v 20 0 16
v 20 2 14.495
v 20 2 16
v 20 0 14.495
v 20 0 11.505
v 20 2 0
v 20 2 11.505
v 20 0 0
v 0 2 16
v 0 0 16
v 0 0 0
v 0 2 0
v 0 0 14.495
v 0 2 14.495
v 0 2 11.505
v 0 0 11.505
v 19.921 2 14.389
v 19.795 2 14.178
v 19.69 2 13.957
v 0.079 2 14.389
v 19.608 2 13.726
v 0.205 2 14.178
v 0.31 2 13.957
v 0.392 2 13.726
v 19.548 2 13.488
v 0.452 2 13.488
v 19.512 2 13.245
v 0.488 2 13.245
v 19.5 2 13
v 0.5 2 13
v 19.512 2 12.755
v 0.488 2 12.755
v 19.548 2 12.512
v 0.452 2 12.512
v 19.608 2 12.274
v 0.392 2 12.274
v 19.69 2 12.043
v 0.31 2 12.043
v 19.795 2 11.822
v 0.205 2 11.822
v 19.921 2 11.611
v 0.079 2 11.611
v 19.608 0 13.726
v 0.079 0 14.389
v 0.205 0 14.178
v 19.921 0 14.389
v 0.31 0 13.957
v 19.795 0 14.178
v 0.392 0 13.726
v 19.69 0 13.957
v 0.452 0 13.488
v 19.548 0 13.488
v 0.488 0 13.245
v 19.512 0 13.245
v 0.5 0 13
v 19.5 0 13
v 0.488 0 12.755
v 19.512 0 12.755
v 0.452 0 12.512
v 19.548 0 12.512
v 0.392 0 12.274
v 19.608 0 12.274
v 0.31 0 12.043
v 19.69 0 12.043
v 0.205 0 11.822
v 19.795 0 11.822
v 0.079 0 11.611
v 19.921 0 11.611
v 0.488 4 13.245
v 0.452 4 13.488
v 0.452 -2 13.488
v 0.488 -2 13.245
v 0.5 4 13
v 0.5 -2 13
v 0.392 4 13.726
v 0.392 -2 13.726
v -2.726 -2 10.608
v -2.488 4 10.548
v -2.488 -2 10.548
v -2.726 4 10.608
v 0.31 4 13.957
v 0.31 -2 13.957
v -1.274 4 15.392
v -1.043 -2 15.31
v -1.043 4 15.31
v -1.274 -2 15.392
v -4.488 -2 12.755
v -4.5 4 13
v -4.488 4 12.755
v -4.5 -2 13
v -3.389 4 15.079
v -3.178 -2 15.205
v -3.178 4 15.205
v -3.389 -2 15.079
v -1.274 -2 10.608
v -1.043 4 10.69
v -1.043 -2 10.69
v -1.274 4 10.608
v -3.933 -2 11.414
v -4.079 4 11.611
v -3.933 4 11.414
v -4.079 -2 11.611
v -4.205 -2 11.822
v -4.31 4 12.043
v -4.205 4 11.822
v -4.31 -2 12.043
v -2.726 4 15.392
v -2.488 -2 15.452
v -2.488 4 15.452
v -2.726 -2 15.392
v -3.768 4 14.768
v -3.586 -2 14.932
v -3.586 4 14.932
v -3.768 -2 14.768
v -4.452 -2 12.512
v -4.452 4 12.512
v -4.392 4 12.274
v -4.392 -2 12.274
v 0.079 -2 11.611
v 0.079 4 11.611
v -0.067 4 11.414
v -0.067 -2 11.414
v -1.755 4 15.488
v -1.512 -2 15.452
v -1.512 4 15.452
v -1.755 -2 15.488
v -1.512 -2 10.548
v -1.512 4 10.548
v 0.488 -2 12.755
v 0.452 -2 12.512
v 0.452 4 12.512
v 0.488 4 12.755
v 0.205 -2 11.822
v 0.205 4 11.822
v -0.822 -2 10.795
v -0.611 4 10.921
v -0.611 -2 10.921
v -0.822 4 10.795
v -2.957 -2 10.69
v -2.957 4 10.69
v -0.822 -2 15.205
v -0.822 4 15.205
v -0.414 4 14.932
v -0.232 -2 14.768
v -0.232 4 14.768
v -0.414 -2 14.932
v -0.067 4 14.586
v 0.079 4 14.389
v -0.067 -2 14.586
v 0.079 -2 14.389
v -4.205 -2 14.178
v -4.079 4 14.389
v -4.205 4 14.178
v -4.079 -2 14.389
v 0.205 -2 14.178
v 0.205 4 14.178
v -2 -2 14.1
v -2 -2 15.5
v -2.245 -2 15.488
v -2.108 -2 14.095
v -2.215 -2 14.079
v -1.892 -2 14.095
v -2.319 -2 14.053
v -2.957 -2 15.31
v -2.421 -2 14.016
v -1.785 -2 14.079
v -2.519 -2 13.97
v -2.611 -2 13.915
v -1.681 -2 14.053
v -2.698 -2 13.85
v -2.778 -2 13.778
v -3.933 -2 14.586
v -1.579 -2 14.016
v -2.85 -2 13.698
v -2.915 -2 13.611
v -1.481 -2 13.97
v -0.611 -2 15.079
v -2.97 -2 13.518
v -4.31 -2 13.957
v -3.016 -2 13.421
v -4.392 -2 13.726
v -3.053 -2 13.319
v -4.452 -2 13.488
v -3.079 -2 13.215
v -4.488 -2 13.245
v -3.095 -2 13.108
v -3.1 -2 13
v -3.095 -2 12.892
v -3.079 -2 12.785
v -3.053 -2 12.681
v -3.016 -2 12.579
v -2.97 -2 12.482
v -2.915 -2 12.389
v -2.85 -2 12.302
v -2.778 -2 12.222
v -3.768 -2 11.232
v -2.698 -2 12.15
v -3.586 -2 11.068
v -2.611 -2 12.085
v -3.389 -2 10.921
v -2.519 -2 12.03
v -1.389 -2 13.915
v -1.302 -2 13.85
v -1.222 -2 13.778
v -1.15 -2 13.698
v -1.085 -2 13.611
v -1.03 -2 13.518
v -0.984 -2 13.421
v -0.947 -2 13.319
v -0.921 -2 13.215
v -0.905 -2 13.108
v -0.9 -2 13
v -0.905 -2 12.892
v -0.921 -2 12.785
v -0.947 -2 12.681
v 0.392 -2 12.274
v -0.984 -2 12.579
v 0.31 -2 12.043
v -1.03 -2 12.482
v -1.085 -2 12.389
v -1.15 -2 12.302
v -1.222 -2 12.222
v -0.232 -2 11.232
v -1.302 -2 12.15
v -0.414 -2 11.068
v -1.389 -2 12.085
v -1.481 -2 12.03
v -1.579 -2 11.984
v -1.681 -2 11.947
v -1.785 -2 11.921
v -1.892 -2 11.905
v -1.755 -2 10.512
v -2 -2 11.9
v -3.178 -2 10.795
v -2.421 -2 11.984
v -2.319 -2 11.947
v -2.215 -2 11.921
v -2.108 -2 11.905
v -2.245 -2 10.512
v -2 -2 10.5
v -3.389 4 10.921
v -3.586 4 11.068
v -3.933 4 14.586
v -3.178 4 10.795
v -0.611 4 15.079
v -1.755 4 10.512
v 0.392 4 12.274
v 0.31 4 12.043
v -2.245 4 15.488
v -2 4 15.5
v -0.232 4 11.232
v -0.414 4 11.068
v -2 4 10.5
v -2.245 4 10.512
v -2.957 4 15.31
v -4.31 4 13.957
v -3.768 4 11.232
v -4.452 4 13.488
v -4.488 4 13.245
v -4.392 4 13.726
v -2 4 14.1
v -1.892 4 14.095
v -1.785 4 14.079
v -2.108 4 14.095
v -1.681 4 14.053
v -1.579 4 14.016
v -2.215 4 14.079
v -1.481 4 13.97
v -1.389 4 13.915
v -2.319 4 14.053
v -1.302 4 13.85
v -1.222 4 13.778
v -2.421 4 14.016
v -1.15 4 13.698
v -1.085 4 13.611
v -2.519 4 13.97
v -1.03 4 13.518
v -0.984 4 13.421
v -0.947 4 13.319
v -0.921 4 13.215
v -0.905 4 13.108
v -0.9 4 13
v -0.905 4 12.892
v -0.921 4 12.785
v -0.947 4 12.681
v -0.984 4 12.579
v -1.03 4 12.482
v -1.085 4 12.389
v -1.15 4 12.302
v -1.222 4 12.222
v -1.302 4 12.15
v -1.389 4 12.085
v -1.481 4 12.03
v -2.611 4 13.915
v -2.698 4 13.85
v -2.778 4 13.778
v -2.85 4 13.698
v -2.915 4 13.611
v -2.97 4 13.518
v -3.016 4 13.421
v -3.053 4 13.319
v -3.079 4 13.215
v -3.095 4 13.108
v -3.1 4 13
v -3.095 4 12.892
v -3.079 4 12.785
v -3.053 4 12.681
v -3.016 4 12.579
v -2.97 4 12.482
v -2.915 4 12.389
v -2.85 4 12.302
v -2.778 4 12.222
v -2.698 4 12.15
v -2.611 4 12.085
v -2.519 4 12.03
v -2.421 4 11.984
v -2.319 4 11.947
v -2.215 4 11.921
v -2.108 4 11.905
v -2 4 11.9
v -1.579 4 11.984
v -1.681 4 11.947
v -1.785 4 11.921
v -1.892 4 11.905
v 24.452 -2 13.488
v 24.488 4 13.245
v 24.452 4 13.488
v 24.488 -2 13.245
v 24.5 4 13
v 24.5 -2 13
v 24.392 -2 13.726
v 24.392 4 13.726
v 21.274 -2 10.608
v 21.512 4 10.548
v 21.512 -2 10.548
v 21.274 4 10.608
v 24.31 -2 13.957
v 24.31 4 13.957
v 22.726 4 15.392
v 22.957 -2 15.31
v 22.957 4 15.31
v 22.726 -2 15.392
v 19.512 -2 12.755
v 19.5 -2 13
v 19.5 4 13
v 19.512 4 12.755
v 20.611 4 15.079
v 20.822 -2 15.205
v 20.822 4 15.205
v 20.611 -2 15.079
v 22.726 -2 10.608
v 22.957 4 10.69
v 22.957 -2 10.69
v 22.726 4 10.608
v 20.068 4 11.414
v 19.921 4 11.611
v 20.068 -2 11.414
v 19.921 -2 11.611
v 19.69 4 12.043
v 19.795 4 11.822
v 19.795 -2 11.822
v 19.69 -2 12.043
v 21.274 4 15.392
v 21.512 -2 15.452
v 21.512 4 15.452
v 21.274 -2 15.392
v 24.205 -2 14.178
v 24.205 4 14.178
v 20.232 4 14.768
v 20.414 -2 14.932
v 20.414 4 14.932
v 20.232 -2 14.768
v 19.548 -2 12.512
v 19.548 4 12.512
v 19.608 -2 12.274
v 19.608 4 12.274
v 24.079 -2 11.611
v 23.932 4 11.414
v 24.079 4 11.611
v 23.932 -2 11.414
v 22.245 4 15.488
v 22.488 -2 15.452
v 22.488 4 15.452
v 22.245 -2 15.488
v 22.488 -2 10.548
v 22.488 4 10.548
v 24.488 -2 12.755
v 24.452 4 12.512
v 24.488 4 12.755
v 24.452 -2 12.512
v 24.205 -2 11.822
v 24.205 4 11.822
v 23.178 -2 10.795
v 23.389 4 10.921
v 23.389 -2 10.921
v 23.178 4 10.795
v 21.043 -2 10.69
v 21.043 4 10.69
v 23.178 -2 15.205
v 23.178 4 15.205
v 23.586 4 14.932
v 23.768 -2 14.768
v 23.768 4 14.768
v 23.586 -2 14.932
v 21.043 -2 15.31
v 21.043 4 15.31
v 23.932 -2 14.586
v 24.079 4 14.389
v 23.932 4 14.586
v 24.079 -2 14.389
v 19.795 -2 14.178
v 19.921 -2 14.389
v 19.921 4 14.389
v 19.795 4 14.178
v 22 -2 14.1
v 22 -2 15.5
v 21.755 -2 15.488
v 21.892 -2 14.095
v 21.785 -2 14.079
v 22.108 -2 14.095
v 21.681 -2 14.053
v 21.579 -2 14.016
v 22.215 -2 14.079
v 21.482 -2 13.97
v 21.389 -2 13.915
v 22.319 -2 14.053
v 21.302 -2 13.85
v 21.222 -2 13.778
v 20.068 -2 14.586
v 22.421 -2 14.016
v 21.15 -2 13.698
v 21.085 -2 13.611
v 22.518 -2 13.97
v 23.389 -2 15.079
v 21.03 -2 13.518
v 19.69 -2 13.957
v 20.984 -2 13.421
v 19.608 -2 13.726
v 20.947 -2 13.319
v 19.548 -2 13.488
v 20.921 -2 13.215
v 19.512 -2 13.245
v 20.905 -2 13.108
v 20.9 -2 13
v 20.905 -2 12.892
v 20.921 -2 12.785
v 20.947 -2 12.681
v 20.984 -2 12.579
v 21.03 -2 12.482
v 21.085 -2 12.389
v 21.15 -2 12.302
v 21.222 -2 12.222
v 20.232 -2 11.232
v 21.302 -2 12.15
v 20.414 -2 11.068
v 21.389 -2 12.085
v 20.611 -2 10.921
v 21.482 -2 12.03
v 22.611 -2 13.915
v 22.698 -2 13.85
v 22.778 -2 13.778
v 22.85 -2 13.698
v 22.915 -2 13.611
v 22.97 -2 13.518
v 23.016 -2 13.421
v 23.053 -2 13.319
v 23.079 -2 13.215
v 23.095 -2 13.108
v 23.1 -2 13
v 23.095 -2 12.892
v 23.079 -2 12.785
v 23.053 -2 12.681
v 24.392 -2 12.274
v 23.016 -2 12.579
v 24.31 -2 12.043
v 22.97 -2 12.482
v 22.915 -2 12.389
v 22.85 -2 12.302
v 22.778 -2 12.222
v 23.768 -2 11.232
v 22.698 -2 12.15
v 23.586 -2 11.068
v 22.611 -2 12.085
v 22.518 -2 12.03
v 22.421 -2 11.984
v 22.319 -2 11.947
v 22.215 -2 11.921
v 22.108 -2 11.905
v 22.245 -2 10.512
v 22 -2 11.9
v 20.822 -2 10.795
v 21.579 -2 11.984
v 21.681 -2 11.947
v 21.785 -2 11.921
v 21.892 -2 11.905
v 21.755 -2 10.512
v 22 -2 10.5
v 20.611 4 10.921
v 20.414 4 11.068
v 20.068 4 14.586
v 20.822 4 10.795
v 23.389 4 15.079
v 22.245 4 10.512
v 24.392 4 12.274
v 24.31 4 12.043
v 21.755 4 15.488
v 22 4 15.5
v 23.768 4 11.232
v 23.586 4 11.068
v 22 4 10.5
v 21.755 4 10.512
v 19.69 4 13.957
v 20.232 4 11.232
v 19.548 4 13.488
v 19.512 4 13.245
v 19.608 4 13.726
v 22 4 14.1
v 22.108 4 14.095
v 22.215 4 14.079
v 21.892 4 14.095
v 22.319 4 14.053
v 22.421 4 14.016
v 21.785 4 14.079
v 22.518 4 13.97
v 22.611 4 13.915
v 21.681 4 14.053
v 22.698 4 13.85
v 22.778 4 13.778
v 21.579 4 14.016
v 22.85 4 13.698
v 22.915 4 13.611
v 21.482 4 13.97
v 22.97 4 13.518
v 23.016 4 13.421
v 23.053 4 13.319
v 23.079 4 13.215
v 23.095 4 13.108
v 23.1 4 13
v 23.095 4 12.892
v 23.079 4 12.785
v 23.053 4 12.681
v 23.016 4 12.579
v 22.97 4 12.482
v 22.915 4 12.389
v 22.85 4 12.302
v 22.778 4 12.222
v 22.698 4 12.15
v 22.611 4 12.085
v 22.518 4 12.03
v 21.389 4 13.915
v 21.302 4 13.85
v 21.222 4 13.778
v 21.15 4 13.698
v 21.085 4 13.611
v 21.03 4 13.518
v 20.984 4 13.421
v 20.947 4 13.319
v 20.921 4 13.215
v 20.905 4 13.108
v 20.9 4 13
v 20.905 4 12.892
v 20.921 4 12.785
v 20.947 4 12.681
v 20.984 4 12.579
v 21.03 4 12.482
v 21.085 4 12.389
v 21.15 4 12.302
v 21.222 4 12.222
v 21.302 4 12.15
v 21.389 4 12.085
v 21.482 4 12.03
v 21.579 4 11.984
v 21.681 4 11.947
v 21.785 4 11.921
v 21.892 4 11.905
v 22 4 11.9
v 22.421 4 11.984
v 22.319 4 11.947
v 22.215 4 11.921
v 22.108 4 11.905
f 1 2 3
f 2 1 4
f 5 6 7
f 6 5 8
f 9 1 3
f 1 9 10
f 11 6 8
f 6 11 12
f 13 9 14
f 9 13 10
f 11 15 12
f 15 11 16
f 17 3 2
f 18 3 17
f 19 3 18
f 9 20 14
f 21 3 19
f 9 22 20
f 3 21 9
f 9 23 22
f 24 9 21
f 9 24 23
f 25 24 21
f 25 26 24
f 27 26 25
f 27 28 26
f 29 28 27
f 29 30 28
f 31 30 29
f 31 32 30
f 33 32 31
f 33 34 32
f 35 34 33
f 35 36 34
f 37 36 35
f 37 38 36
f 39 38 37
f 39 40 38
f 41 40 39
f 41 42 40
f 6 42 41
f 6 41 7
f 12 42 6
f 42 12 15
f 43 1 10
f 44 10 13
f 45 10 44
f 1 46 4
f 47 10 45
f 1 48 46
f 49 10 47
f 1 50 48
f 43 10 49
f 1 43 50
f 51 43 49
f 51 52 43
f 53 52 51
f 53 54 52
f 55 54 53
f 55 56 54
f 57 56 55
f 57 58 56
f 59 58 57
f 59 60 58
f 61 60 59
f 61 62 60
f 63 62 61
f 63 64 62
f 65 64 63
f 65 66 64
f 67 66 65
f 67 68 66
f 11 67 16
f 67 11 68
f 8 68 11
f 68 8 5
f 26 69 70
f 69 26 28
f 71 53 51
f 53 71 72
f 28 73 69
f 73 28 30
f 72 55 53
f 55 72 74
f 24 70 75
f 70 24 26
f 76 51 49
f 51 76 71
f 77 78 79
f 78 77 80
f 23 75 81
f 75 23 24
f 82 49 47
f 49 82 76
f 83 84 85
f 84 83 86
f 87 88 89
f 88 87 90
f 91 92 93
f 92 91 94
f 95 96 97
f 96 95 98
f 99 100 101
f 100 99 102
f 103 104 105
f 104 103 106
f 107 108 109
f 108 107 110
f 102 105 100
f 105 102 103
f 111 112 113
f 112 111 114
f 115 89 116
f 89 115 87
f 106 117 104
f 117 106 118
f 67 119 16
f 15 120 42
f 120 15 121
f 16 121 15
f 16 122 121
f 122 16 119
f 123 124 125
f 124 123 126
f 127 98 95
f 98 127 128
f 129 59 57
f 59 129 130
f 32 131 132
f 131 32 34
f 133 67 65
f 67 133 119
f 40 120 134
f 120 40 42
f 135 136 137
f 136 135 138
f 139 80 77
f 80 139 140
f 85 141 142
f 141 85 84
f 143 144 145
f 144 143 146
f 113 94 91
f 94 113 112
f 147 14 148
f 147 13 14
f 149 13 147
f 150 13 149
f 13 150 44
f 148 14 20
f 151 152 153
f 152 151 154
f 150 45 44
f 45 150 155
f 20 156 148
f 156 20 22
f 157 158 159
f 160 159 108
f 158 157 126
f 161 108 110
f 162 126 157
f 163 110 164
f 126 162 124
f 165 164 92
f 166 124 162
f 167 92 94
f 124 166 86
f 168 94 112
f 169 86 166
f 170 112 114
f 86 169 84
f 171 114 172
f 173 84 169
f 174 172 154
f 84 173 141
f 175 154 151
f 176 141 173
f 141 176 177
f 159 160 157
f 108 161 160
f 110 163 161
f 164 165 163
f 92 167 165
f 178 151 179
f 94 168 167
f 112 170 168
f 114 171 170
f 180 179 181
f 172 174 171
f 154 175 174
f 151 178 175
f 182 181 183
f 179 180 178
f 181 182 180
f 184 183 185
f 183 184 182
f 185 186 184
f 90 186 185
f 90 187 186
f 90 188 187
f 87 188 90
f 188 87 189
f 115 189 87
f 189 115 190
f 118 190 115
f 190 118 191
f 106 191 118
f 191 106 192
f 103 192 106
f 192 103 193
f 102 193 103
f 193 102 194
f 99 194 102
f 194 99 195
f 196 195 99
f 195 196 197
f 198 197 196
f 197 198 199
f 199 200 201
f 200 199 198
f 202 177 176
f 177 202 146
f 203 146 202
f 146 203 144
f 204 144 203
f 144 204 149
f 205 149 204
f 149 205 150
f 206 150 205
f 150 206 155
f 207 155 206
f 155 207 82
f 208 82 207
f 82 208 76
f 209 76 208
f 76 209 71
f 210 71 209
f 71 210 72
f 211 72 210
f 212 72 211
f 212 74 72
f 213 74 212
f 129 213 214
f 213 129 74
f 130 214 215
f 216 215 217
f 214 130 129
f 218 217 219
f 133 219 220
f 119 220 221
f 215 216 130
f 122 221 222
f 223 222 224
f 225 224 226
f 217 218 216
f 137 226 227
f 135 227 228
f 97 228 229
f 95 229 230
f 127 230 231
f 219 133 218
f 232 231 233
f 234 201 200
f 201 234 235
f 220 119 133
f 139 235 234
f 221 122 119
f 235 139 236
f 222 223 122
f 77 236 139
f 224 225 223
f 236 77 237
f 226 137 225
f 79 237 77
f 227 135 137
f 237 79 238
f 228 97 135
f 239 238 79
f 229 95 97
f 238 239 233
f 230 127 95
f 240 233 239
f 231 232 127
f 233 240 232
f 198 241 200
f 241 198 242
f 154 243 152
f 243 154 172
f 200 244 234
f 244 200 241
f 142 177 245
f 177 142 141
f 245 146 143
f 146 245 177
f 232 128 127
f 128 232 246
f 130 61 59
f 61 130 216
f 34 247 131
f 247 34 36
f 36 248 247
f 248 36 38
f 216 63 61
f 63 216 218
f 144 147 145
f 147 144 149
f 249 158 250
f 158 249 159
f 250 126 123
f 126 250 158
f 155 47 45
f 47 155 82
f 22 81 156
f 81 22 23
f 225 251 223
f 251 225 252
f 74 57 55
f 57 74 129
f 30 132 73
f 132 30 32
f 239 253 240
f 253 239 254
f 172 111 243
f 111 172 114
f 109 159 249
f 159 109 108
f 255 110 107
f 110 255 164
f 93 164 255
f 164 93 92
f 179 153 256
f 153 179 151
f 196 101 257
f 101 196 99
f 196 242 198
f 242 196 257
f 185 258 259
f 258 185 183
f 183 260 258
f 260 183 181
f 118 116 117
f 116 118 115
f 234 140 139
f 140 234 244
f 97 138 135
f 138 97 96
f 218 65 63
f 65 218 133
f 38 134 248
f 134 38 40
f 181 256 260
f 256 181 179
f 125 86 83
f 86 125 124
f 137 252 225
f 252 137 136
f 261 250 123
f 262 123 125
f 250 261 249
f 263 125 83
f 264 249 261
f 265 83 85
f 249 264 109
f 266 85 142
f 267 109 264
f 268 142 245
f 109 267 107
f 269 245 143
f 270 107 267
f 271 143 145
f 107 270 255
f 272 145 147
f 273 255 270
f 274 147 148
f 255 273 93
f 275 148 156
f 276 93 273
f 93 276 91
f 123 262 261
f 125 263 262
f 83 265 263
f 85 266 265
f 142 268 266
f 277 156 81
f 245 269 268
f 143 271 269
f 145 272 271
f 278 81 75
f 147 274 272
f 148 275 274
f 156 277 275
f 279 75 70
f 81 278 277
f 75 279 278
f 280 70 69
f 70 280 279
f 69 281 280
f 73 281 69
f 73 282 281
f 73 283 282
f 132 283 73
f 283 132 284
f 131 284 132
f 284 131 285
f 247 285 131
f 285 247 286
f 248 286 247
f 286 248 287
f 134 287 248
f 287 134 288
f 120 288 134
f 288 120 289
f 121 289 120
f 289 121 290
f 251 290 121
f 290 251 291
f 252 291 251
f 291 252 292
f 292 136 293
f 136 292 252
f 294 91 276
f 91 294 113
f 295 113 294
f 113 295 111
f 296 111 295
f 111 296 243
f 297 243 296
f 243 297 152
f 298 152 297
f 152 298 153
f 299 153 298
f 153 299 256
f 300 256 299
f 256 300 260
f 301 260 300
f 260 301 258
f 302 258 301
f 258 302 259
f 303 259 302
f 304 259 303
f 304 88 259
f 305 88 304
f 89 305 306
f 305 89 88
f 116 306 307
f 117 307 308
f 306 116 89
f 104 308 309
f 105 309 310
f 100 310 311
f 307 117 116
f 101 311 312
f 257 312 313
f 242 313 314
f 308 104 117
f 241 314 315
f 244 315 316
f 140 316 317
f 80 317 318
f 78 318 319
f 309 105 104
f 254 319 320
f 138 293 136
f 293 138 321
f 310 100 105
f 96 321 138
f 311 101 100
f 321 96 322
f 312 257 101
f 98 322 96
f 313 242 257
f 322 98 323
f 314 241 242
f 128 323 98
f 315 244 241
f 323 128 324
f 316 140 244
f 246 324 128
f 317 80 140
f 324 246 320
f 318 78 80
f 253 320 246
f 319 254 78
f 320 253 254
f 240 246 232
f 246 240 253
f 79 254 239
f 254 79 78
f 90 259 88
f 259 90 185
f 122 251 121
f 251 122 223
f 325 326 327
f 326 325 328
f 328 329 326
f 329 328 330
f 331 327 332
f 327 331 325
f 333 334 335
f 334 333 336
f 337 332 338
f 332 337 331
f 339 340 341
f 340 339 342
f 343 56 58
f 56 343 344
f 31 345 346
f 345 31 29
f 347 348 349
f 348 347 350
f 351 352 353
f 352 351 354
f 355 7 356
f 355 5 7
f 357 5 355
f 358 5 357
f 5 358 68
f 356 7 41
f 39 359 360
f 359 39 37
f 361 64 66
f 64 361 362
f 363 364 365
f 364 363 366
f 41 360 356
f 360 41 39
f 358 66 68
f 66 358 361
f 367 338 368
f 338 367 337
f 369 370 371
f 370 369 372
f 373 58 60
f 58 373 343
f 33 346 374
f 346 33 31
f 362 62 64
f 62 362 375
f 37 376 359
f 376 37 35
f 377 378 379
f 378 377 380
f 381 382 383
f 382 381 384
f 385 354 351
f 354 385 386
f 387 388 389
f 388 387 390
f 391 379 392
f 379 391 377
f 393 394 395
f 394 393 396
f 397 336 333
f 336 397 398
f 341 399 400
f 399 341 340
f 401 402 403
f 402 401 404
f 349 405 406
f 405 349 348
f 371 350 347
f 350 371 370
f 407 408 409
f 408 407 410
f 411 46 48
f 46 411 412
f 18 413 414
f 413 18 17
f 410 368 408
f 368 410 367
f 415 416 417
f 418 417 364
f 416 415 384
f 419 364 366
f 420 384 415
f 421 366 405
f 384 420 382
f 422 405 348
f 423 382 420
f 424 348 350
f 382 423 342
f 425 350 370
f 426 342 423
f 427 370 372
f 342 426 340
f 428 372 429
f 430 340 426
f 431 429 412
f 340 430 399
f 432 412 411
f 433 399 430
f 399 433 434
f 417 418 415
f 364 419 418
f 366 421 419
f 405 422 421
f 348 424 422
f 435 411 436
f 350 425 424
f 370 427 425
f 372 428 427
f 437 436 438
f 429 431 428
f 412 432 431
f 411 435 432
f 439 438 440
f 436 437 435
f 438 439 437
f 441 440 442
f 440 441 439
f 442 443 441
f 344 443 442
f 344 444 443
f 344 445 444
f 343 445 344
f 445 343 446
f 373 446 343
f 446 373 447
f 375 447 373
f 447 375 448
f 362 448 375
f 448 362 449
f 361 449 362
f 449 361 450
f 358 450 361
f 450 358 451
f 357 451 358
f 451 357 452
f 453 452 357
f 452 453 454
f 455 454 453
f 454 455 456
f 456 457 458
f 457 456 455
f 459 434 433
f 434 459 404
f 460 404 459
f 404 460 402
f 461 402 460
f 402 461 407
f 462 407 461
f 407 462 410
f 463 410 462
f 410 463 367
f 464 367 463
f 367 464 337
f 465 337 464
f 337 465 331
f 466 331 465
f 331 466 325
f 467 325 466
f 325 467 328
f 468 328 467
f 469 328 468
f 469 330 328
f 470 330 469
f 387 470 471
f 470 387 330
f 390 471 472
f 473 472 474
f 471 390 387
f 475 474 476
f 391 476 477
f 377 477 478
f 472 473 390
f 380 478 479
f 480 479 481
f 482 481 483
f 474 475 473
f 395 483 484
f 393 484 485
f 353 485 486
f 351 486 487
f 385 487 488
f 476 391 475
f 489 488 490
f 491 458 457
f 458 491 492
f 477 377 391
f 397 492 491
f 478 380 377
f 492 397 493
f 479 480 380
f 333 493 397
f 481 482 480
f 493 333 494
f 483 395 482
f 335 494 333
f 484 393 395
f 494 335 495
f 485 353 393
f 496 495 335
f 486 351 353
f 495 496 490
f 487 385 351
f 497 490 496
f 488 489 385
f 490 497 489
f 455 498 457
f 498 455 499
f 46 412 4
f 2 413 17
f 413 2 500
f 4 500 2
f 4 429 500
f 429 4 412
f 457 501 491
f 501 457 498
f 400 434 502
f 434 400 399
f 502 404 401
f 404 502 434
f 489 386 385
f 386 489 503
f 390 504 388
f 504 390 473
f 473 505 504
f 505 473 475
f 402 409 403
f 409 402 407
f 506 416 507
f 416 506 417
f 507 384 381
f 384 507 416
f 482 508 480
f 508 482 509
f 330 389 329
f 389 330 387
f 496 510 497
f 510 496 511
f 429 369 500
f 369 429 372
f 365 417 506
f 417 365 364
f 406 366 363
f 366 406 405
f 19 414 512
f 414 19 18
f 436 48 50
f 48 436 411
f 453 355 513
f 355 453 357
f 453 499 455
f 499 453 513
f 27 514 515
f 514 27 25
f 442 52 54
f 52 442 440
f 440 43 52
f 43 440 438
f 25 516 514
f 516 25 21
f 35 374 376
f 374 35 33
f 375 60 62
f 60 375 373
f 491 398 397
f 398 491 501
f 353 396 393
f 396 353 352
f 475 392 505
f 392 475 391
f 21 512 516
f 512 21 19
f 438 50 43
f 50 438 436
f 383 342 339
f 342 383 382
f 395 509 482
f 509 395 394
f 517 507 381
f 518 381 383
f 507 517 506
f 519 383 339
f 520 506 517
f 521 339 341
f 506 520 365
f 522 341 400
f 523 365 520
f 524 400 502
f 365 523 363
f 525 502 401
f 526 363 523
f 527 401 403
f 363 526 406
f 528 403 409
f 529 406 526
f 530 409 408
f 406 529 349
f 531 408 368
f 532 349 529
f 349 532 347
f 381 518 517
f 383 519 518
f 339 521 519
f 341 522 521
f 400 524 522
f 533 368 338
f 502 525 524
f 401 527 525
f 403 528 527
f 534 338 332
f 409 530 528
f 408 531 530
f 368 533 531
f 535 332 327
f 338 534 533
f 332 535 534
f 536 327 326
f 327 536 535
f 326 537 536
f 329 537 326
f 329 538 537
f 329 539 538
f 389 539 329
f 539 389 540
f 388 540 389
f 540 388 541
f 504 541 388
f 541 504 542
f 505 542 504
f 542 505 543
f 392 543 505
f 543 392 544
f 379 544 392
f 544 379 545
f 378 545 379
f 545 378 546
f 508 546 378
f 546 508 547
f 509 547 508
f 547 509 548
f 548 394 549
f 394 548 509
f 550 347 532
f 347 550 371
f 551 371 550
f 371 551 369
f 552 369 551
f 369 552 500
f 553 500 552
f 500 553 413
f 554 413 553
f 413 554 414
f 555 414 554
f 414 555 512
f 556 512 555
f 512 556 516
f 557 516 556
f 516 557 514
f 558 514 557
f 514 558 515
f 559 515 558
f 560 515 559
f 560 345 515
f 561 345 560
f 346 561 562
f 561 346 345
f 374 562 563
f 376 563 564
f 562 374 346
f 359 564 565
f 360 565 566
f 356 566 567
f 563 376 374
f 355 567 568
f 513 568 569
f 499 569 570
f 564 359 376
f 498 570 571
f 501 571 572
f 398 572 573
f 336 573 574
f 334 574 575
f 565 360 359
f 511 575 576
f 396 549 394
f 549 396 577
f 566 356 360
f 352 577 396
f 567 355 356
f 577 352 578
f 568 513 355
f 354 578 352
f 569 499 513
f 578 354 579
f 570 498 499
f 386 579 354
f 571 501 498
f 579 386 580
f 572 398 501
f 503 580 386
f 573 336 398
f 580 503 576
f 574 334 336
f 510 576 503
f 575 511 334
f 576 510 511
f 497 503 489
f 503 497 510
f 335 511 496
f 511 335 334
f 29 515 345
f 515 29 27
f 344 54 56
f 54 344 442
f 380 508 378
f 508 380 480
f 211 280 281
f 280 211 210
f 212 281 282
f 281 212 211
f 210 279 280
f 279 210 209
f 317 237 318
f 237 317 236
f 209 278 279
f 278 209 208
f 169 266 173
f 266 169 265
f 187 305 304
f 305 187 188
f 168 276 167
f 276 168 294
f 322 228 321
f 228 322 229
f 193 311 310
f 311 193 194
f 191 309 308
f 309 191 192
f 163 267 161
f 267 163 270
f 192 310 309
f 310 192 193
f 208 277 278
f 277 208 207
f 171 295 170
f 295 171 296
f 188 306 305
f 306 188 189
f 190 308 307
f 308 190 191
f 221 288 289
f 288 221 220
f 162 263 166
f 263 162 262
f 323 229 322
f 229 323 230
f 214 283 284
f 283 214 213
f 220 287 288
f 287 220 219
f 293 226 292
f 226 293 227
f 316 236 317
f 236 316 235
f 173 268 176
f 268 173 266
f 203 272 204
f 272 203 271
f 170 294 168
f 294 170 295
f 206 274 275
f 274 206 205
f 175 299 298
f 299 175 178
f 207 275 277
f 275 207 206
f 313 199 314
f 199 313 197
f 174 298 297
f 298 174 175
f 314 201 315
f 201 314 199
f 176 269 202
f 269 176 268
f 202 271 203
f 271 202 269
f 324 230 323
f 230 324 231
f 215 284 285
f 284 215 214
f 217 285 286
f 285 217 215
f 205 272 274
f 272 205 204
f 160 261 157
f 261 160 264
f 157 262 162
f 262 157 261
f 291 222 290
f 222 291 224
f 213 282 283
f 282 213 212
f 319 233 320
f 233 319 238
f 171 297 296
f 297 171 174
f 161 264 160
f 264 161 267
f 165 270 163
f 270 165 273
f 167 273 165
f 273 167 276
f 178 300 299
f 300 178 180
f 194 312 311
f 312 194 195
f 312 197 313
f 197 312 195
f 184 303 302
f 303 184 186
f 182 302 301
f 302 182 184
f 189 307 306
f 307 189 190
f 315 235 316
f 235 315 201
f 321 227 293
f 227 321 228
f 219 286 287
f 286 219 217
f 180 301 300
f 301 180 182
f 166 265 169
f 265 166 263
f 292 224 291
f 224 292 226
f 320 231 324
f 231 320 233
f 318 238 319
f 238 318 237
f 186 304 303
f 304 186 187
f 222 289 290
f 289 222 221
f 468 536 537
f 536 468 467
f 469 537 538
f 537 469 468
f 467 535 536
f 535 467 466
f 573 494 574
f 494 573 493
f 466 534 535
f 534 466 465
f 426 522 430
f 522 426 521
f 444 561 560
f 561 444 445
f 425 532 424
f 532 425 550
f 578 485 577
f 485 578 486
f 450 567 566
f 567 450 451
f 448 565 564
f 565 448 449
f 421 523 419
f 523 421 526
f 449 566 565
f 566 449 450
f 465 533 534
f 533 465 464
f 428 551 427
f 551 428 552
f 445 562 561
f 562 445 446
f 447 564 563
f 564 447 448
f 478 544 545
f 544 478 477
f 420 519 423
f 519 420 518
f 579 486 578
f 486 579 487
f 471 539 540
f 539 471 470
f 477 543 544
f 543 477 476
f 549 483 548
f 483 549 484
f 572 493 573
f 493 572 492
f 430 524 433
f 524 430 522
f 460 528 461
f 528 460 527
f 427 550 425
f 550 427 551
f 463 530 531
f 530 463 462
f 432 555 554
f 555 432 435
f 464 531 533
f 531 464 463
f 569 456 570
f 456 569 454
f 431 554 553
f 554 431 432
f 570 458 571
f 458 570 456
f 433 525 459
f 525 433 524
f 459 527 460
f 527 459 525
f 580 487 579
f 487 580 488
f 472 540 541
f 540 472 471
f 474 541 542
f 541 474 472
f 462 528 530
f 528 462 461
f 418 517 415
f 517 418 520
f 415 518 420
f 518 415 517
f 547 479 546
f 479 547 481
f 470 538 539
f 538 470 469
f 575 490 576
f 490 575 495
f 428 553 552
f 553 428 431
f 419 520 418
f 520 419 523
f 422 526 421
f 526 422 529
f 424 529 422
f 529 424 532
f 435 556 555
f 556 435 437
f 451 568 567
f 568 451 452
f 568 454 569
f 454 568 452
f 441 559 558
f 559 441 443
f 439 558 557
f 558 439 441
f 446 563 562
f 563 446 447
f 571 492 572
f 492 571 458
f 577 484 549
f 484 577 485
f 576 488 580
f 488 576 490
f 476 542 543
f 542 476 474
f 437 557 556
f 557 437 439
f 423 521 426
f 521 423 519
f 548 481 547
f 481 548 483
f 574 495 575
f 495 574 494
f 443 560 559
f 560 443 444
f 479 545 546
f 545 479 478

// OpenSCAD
// Generated by SolidPython 1.1.3 on 2026-10-31 12:54:01
$fn = 64;
// 04_servo_gate


difference() {
	union() {
		cube(size = [20.0000000000, 2.0000000000, 16.0000000000]);
		translate(v = [-2, 1.0000000000, 13.0000000000]) {
			rotate(a = [90, 0, 0]) {
				cylinder(center = true, h = 6.0000000000, r = 2.5000000000);
			}
		}
		translate(v = [22.0000000000, 1.0000000000, 13.0000000000]) {
			rotate(a = [90, 0, 0]) {
				cylinder(center = true, h = 6.0000000000, r = 2.5000000000);
			}
		}
	}
	translate(v = [-2, 1.0000000000, 13.0000000000]) {
		rotate(a = [90, 0, 0]) {
			cylinder(center = true, h = 8.0000000000, r = 1.1000000000);
		}
	}
	translate(v = [22.0000000000, 1.0000000000, 13.0000000000]) {
		rotate(a = [90, 0, 0]) {
			cylinder(center = true, h = 8.0000000000, r = 1.1000000000);
		}
	}
}
/***********************************************
*********      SolidPython code:      **********
************************************************
 
#!/usr/bin/env python3
"""
Parametric 6-compartment automatic pill dispenser
Compatible with MDP Smart Pill Dispenser project assumptions
(6 slots, one preloaded item per slot, servo gate release)

Dimensions chosen for easy FDM printing (PLA/PETG), common SG90/MG90S servo,
and typical tablet sizes. All units in mm.

Exports STL files ready for slicing.
"""

from solid import *
from solid.utils import *
import os

# ===================== PARAMETERS (edit these) =====================
NUM_COMPARTMENTS = 6
TRAY_OUTER_DIA = 120.0
TRAY_HEIGHT = 28.0
WALL = 2.2
SHAFT_DIA = 8.0          # central shaft / coupler hole
HUB_DIA = 22.0
COMPARTMENT_DEPTH = 22.0 # radial depth of each pocket
BASE_DIA = 140.0
BASE_HEIGHT = 45.0
ELECTRONICS_BAY_W = 70.0
ELECTRONICS_BAY_D = 55.0
ELECTRONICS_BAY_H = 28.0
OUTLET_W = 18.0
OUTLET_H = 14.0
SERVO_MOUNT_W = 23.0     # typical SG90 body width
SERVO_MOUNT_H = 12.0
GATE_THICK = 2.0
GATE_W = 20.0
GATE_H = 16.0
LID_HEIGHT = 4.0
CLEARANCE = 0.4          # print clearance

OUTPUT_DIR = os.path.dirname(os.path.abspath(__file__))

# ===================== HELPER =====================
def cylinder_z(h, r=None, d=None, center=False):
    if d is not None:
        r = d / 2.0
    return cylinder(h=h, r=r, center=center)

# ===================== TRAY (carousel) =====================
def make_tray():
    outer_r = TRAY_OUTER_DIA / 2
    hub_r = HUB_DIA / 2
    shaft_r = SHAFT_DIA / 2 + CLEARANCE / 2
    angle_step = 360.0 / NUM_COMPARTMENTS
    floor_h = WALL

    # Solid outer cylinder
    tray = cylinder_z(TRAY_HEIGHT, r=outer_r)

    # Remove material above the floor to create the open compartments
    # Keep outer wall thickness = WALL
    void = translate([0, 0, floor_h])(
        cylinder_z(TRAY_HEIGHT - floor_h + 1, r=outer_r - WALL)
    )
    tray = difference()(tray, void)

    # Add radial divider walls (from hub to outer wall)
    for i in range(NUM_COMPARTMENTS):
        a = i * angle_step
        wall = rotate([0, 0, a])(
            translate([hub_r - 1, -WALL / 2, 0])(
                cube([outer_r - hub_r + 2, WALL, TRAY_HEIGHT])
            )
        )
        tray = union()(tray, wall)

    # Solid central hub
    hub = cylinder_z(TRAY_HEIGHT, r=hub_r)
    tray = union()(tray, hub)

    # Shaft hole through hub
    shaft = translate([0, 0, -1])(
        cylinder_z(TRAY_HEIGHT + 2, r=shaft_r)
    )
    tray = difference()(tray, shaft)

    # Small radial indexing holes (for optical/home sensor)
    for i in range(NUM_COMPARTMENTS):
        a = i * angle_step + angle_step / 2.0
        hole = rotate([0, 0, a])(
            translate([outer_r - 5, 0, TRAY_HEIGHT / 2])(
                rotate([0, 90, 0])(
                    cylinder_z(10, r=1.6, center=True)
                )
            )
        )
        tray = difference()(tray, hole)

    return tray

# ===================== BASE =====================
def make_base():
    outer_r = BASE_DIA / 2
    base = cylinder_z(BASE_HEIGHT, r=outer_r)

    # Hollow main cavity for tray + mechanism
    cavity_r = TRAY_OUTER_DIA / 2 + 3
    cavity = translate([0, 0, 8])(
        cylinder_z(BASE_HEIGHT, r=cavity_r)
    )
    base = difference()(base, cavity)

    # Electronics bay (side cutout / pocket)
    bay = translate([
        outer_r - ELECTRONICS_BAY_D/2 - 8,
        -ELECTRONICS_BAY_W/2,
        5
    ])(
        cube([ELECTRONICS_BAY_D + 10, ELECTRONICS_BAY_W, ELECTRONICS_BAY_H])
    )
    base = difference()(base, bay)

    # Outlet chute at front
    outlet = translate([
        cavity_r - 5,
        -OUTLET_W/2,
        8
    ])(
        cube([30, OUTLET_W, OUTLET_H])
    )
    base = difference()(base, outlet)

    # Motor mount platform (central raised area under tray)
    mount = cylinder_z(10, r=28)
    base = union()(base, mount)

    # Shaft clearance hole through mount
    shaft_hole = cylinder_z(15, r=SHAFT_DIA/2 + 1.5)
    base = difference()(base, shaft_hole)

    # Servo mount pocket (for gate actuator) - near outlet
    servo_pocket = translate([
        cavity_r - 15,
        OUTLET_W/2 + 5,
        10
    ])(
        cube([SERVO_MOUNT_W + 2, 12, SERVO_MOUNT_H + 2])
    )
    base = difference()(base, servo_pocket)

    # Mounting screw holes for electronics / lid (M3)
    for angle in [45, 135, 225, 315]:
        hole = rotate([0, 0, angle])(
            translate([outer_r - 12, 0, 0])(
                cylinder_z(BASE_HEIGHT + 2, r=1.7)
            )
        )
        base = difference()(base, hole)

    # Bottom feet
    for angle in [0, 90, 180, 270]:
        foot = rotate([0, 0, angle])(
            translate([outer_r - 18, 0, 0])(
                cylinder_z(3, r=8)
            )
        )
        base = union()(base, foot)

    return base

# ===================== LID =====================
def make_lid():
    outer_r = TRAY_OUTER_DIA / 2 + 1.5
    lid = cylinder_z(LID_HEIGHT, r=outer_r)
    # Lip that sits on tray
    lip = translate([0, 0, -2])(
        difference()(
            cylinder_z(3, r=outer_r),
            cylinder_z(4, r=outer_r - 3)
        )
    )
    lid = union()(lid, lip)
    # Central handle / fill hole (optional small opening)
    fill = cylinder_z(LID_HEIGHT + 2, r=12)
    lid = difference()(lid, fill)
    # Label area
    return lid

# ===================== GATE (servo flap) =====================
def make_gate():
    # Simple rectangular flap with hinge pin holes
    gate = cube([GATE_W, GATE_THICK, GATE_H])
    # Hinge bosses
    boss1 = translate([-2, GATE_THICK/2, GATE_H - 3])(
        rotate([90, 0, 0])(cylinder_z(GATE_THICK + 4, r=2.5, center=True))
    )
    boss2 = translate([GATE_W + 2, GATE_THICK/2, GATE_H - 3])(
        rotate([90, 0, 0])(cylinder_z(GATE_THICK + 4, r=2.5, center=True))
    )
    gate = union()(gate, boss1, boss2)
    # Pin holes
    pin1 = translate([-2, GATE_THICK/2, GATE_H - 3])(
        rotate([90, 0, 0])(cylinder_z(GATE_THICK + 6, r=1.1, center=True))
    )
    pin2 = translate([GATE_W + 2, GATE_THICK/2, GATE_H - 3])(
        rotate([90, 0, 0])(cylinder_z(GATE_THICK + 6, r=1.1, center=True))
    )
    gate = difference()(gate, pin1, pin2)
    return gate

# ===================== GENERATE =====================
def export(obj, name):
    path = os.path.join(OUTPUT_DIR, f"{name}.scad")
    scad_render_to_file(obj, path, file_header=f"$fn = 64;\n// {name}\n")
    print(f"Wrote {path}")
    # Also try to produce STL via openscad if available, else leave .scad
    return path

if __name__ == "__main__":
    print("Generating parametric pill dispenser parts...")
    tray = make_tray()
    base = make_base()
    lid = make_lid()
    gate = make_gate()

    export(tray, "01_tray_carousel_6slot")
    export(base, "02_base_enclosure")
    export(lid, "03_lid")
    export(gate, "04_servo_gate")

    # Assembly preview (not for print)
    assembly = union()(
        base,
        translate([0, 0, 12])(color("orange")(tray)),
        translate([0, 0, 12 + TRAY_HEIGHT + 1])(color("lightblue")(lid)),
        translate([TRAY_OUTER_DIA/2 - 5, -GATE_W/2, 12])(color("red")(gate))
    )
    export(assembly, "00_assembly_preview")

    print("\nDone. Open the .scad files in OpenSCAD (free) → Design → Export as STL")
    print("Or use FreeCAD: File → Import → select .scad (or convert via OpenSCAD)")
    print(f"Files are in: {OUTPUT_DIR}")
 
 
************************************************/
